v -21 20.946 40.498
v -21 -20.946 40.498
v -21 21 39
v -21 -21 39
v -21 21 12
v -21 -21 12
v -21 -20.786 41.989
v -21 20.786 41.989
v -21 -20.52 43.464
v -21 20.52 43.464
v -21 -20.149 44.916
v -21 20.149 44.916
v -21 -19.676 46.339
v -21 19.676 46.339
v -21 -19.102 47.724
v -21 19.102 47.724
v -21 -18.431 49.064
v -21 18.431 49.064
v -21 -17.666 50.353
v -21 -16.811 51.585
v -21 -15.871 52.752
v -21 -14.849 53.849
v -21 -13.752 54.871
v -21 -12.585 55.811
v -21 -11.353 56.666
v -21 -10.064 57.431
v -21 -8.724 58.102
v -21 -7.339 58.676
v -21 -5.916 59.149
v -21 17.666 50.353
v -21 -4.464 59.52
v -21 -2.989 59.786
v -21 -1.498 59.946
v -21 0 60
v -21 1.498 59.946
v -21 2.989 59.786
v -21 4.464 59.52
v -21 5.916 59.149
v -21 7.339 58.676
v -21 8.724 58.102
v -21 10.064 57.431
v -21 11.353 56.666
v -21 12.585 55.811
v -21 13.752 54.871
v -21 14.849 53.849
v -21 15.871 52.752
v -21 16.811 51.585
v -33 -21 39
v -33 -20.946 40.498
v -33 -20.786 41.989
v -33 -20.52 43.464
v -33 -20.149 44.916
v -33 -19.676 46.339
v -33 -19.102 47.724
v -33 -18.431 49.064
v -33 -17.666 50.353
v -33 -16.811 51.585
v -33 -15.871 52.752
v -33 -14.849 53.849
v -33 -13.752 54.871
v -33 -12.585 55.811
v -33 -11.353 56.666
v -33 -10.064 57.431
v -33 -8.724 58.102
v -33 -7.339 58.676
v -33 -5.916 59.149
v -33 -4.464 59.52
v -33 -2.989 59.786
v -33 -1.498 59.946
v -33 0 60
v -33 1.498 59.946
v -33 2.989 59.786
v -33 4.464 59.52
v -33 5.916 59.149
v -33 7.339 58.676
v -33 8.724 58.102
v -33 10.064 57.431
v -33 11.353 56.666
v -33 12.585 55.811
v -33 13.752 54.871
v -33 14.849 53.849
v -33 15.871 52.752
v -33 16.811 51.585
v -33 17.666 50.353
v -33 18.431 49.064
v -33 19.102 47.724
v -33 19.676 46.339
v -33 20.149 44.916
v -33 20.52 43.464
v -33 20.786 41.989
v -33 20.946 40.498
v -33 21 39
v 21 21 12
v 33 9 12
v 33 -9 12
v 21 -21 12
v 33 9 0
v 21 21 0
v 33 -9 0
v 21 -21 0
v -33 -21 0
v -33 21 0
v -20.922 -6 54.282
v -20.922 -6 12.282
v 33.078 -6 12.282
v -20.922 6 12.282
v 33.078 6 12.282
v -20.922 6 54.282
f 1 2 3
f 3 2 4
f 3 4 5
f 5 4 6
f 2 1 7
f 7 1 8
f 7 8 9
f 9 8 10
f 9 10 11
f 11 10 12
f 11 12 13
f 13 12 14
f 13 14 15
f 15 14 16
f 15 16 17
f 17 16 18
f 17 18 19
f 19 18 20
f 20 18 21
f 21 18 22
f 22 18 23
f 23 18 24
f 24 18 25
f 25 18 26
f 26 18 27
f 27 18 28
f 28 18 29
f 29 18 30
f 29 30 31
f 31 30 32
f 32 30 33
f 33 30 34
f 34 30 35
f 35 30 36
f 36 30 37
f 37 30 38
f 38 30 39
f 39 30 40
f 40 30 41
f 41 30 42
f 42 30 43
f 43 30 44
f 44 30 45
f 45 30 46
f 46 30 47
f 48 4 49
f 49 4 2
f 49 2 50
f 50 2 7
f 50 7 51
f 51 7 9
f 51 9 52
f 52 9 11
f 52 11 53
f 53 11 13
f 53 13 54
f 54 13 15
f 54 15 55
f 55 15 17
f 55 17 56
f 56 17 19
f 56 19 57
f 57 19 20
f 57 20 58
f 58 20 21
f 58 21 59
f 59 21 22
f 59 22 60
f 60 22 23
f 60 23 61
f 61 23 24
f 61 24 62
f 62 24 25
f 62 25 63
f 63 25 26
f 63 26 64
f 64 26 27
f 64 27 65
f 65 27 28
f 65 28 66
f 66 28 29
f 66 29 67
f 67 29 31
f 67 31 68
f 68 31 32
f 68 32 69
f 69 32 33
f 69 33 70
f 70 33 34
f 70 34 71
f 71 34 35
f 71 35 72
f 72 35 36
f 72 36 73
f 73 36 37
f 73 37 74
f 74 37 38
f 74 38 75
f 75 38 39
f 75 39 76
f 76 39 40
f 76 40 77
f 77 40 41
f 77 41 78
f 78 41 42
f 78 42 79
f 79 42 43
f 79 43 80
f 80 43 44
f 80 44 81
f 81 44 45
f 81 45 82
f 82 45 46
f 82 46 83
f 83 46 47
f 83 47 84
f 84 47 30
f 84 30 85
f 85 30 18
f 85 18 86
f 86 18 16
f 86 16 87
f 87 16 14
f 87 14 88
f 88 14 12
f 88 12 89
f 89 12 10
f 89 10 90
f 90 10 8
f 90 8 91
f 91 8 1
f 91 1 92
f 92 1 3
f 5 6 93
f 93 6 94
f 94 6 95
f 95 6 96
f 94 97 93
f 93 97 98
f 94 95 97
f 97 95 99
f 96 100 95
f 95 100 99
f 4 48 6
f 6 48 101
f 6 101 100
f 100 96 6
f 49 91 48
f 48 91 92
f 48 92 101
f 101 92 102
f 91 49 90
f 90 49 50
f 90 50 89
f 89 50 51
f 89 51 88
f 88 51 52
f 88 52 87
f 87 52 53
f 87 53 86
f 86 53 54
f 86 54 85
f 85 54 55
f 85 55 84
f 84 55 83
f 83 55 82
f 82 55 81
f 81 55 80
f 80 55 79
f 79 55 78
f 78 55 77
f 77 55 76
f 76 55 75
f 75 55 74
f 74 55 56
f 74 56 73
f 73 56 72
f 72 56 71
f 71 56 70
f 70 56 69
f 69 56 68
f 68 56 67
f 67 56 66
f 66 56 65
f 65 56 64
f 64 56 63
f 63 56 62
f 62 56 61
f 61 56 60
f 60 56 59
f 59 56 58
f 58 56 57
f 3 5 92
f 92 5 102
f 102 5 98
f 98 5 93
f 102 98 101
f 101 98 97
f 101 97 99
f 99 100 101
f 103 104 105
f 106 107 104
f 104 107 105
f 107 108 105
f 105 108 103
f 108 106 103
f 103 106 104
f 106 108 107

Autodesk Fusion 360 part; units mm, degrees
sketch "Sketch2" plane through (0, 0, 0) normal (0, 0, 1) x (1, 0, 0)
  line L0 (33, 21) -> (-33, 21)
  line L1 (-33, 21) -> (-33, -21)
  line L2 (-33, -21) -> (33, -21)
  line L3 (33, -21) -> (33, 21)
  line L4 (33, 21) -> (-33, -21) construction
  line L5 (-33, 21) -> (33, -21) construction
  dimension "d1" = 66
  dimension "d2" = 42
extrude "Extrude1" add sketch "Sketch2" along normal blind 12 makes body 1
chamfer "Chamfer1" distance 12 angle 45 2 edges at (33, -21, 6) (33, 21, 6) on bodies 1
sketch "Sketch3" plane through (0, 0, 12) normal (0, 0, 1) x (-1, 0, 0)
  line L0 (-33, -9) -> (-21, -21)
  line L1 (-21, -21) -> (33, -21)
  line L2 (33, -21) -> (33, 21)
  line L3 (33, 21) -> (-21, 21)
  line L4 (-21, 21) -> (-33, 9)
  line L5 (-33, 9) -> (-33, -9)
  line L6 (33, -21) -> (21, -21)
  line L7 (21, -21) -> (21, 21)
  line L8 (21, 21) -> (33, 21)
  line L9 (33, 21) -> (33, -21)
  dimension "d6" = 12
extrude "Extrude2" add sketch "Sketch3" along normal blind 48 contours L1 L2 L3 L6 L7 L8 L9 bodies 1
fillet "Fillet1" radius 21 2 edges at (-27, -21, 60) (-27, 21, 60) on bodies 1
sketch "Sketch4" plane through (0, 0, 0) normal (0, 1, 0) x (1, 0, 0)
  line L0 (-20.9221, -54.2818) -> (33.0779, -12.2818)
  line L1 (33.0779, -12.2818) -> (-20.9221, -12.2818)
  line L2 (-20.9221, -12.2818) -> (-20.9221, -54.2818)
  dimension "d11" = 42
  dimension "d12" = 54
extrude "Extrude3" add sketch "Sketch4" along normal mid plane 12 separate body makes body 2
equation "d7 = 60 mm - 12 mm"
equation "d12 = 66 mm - 12 mm"
